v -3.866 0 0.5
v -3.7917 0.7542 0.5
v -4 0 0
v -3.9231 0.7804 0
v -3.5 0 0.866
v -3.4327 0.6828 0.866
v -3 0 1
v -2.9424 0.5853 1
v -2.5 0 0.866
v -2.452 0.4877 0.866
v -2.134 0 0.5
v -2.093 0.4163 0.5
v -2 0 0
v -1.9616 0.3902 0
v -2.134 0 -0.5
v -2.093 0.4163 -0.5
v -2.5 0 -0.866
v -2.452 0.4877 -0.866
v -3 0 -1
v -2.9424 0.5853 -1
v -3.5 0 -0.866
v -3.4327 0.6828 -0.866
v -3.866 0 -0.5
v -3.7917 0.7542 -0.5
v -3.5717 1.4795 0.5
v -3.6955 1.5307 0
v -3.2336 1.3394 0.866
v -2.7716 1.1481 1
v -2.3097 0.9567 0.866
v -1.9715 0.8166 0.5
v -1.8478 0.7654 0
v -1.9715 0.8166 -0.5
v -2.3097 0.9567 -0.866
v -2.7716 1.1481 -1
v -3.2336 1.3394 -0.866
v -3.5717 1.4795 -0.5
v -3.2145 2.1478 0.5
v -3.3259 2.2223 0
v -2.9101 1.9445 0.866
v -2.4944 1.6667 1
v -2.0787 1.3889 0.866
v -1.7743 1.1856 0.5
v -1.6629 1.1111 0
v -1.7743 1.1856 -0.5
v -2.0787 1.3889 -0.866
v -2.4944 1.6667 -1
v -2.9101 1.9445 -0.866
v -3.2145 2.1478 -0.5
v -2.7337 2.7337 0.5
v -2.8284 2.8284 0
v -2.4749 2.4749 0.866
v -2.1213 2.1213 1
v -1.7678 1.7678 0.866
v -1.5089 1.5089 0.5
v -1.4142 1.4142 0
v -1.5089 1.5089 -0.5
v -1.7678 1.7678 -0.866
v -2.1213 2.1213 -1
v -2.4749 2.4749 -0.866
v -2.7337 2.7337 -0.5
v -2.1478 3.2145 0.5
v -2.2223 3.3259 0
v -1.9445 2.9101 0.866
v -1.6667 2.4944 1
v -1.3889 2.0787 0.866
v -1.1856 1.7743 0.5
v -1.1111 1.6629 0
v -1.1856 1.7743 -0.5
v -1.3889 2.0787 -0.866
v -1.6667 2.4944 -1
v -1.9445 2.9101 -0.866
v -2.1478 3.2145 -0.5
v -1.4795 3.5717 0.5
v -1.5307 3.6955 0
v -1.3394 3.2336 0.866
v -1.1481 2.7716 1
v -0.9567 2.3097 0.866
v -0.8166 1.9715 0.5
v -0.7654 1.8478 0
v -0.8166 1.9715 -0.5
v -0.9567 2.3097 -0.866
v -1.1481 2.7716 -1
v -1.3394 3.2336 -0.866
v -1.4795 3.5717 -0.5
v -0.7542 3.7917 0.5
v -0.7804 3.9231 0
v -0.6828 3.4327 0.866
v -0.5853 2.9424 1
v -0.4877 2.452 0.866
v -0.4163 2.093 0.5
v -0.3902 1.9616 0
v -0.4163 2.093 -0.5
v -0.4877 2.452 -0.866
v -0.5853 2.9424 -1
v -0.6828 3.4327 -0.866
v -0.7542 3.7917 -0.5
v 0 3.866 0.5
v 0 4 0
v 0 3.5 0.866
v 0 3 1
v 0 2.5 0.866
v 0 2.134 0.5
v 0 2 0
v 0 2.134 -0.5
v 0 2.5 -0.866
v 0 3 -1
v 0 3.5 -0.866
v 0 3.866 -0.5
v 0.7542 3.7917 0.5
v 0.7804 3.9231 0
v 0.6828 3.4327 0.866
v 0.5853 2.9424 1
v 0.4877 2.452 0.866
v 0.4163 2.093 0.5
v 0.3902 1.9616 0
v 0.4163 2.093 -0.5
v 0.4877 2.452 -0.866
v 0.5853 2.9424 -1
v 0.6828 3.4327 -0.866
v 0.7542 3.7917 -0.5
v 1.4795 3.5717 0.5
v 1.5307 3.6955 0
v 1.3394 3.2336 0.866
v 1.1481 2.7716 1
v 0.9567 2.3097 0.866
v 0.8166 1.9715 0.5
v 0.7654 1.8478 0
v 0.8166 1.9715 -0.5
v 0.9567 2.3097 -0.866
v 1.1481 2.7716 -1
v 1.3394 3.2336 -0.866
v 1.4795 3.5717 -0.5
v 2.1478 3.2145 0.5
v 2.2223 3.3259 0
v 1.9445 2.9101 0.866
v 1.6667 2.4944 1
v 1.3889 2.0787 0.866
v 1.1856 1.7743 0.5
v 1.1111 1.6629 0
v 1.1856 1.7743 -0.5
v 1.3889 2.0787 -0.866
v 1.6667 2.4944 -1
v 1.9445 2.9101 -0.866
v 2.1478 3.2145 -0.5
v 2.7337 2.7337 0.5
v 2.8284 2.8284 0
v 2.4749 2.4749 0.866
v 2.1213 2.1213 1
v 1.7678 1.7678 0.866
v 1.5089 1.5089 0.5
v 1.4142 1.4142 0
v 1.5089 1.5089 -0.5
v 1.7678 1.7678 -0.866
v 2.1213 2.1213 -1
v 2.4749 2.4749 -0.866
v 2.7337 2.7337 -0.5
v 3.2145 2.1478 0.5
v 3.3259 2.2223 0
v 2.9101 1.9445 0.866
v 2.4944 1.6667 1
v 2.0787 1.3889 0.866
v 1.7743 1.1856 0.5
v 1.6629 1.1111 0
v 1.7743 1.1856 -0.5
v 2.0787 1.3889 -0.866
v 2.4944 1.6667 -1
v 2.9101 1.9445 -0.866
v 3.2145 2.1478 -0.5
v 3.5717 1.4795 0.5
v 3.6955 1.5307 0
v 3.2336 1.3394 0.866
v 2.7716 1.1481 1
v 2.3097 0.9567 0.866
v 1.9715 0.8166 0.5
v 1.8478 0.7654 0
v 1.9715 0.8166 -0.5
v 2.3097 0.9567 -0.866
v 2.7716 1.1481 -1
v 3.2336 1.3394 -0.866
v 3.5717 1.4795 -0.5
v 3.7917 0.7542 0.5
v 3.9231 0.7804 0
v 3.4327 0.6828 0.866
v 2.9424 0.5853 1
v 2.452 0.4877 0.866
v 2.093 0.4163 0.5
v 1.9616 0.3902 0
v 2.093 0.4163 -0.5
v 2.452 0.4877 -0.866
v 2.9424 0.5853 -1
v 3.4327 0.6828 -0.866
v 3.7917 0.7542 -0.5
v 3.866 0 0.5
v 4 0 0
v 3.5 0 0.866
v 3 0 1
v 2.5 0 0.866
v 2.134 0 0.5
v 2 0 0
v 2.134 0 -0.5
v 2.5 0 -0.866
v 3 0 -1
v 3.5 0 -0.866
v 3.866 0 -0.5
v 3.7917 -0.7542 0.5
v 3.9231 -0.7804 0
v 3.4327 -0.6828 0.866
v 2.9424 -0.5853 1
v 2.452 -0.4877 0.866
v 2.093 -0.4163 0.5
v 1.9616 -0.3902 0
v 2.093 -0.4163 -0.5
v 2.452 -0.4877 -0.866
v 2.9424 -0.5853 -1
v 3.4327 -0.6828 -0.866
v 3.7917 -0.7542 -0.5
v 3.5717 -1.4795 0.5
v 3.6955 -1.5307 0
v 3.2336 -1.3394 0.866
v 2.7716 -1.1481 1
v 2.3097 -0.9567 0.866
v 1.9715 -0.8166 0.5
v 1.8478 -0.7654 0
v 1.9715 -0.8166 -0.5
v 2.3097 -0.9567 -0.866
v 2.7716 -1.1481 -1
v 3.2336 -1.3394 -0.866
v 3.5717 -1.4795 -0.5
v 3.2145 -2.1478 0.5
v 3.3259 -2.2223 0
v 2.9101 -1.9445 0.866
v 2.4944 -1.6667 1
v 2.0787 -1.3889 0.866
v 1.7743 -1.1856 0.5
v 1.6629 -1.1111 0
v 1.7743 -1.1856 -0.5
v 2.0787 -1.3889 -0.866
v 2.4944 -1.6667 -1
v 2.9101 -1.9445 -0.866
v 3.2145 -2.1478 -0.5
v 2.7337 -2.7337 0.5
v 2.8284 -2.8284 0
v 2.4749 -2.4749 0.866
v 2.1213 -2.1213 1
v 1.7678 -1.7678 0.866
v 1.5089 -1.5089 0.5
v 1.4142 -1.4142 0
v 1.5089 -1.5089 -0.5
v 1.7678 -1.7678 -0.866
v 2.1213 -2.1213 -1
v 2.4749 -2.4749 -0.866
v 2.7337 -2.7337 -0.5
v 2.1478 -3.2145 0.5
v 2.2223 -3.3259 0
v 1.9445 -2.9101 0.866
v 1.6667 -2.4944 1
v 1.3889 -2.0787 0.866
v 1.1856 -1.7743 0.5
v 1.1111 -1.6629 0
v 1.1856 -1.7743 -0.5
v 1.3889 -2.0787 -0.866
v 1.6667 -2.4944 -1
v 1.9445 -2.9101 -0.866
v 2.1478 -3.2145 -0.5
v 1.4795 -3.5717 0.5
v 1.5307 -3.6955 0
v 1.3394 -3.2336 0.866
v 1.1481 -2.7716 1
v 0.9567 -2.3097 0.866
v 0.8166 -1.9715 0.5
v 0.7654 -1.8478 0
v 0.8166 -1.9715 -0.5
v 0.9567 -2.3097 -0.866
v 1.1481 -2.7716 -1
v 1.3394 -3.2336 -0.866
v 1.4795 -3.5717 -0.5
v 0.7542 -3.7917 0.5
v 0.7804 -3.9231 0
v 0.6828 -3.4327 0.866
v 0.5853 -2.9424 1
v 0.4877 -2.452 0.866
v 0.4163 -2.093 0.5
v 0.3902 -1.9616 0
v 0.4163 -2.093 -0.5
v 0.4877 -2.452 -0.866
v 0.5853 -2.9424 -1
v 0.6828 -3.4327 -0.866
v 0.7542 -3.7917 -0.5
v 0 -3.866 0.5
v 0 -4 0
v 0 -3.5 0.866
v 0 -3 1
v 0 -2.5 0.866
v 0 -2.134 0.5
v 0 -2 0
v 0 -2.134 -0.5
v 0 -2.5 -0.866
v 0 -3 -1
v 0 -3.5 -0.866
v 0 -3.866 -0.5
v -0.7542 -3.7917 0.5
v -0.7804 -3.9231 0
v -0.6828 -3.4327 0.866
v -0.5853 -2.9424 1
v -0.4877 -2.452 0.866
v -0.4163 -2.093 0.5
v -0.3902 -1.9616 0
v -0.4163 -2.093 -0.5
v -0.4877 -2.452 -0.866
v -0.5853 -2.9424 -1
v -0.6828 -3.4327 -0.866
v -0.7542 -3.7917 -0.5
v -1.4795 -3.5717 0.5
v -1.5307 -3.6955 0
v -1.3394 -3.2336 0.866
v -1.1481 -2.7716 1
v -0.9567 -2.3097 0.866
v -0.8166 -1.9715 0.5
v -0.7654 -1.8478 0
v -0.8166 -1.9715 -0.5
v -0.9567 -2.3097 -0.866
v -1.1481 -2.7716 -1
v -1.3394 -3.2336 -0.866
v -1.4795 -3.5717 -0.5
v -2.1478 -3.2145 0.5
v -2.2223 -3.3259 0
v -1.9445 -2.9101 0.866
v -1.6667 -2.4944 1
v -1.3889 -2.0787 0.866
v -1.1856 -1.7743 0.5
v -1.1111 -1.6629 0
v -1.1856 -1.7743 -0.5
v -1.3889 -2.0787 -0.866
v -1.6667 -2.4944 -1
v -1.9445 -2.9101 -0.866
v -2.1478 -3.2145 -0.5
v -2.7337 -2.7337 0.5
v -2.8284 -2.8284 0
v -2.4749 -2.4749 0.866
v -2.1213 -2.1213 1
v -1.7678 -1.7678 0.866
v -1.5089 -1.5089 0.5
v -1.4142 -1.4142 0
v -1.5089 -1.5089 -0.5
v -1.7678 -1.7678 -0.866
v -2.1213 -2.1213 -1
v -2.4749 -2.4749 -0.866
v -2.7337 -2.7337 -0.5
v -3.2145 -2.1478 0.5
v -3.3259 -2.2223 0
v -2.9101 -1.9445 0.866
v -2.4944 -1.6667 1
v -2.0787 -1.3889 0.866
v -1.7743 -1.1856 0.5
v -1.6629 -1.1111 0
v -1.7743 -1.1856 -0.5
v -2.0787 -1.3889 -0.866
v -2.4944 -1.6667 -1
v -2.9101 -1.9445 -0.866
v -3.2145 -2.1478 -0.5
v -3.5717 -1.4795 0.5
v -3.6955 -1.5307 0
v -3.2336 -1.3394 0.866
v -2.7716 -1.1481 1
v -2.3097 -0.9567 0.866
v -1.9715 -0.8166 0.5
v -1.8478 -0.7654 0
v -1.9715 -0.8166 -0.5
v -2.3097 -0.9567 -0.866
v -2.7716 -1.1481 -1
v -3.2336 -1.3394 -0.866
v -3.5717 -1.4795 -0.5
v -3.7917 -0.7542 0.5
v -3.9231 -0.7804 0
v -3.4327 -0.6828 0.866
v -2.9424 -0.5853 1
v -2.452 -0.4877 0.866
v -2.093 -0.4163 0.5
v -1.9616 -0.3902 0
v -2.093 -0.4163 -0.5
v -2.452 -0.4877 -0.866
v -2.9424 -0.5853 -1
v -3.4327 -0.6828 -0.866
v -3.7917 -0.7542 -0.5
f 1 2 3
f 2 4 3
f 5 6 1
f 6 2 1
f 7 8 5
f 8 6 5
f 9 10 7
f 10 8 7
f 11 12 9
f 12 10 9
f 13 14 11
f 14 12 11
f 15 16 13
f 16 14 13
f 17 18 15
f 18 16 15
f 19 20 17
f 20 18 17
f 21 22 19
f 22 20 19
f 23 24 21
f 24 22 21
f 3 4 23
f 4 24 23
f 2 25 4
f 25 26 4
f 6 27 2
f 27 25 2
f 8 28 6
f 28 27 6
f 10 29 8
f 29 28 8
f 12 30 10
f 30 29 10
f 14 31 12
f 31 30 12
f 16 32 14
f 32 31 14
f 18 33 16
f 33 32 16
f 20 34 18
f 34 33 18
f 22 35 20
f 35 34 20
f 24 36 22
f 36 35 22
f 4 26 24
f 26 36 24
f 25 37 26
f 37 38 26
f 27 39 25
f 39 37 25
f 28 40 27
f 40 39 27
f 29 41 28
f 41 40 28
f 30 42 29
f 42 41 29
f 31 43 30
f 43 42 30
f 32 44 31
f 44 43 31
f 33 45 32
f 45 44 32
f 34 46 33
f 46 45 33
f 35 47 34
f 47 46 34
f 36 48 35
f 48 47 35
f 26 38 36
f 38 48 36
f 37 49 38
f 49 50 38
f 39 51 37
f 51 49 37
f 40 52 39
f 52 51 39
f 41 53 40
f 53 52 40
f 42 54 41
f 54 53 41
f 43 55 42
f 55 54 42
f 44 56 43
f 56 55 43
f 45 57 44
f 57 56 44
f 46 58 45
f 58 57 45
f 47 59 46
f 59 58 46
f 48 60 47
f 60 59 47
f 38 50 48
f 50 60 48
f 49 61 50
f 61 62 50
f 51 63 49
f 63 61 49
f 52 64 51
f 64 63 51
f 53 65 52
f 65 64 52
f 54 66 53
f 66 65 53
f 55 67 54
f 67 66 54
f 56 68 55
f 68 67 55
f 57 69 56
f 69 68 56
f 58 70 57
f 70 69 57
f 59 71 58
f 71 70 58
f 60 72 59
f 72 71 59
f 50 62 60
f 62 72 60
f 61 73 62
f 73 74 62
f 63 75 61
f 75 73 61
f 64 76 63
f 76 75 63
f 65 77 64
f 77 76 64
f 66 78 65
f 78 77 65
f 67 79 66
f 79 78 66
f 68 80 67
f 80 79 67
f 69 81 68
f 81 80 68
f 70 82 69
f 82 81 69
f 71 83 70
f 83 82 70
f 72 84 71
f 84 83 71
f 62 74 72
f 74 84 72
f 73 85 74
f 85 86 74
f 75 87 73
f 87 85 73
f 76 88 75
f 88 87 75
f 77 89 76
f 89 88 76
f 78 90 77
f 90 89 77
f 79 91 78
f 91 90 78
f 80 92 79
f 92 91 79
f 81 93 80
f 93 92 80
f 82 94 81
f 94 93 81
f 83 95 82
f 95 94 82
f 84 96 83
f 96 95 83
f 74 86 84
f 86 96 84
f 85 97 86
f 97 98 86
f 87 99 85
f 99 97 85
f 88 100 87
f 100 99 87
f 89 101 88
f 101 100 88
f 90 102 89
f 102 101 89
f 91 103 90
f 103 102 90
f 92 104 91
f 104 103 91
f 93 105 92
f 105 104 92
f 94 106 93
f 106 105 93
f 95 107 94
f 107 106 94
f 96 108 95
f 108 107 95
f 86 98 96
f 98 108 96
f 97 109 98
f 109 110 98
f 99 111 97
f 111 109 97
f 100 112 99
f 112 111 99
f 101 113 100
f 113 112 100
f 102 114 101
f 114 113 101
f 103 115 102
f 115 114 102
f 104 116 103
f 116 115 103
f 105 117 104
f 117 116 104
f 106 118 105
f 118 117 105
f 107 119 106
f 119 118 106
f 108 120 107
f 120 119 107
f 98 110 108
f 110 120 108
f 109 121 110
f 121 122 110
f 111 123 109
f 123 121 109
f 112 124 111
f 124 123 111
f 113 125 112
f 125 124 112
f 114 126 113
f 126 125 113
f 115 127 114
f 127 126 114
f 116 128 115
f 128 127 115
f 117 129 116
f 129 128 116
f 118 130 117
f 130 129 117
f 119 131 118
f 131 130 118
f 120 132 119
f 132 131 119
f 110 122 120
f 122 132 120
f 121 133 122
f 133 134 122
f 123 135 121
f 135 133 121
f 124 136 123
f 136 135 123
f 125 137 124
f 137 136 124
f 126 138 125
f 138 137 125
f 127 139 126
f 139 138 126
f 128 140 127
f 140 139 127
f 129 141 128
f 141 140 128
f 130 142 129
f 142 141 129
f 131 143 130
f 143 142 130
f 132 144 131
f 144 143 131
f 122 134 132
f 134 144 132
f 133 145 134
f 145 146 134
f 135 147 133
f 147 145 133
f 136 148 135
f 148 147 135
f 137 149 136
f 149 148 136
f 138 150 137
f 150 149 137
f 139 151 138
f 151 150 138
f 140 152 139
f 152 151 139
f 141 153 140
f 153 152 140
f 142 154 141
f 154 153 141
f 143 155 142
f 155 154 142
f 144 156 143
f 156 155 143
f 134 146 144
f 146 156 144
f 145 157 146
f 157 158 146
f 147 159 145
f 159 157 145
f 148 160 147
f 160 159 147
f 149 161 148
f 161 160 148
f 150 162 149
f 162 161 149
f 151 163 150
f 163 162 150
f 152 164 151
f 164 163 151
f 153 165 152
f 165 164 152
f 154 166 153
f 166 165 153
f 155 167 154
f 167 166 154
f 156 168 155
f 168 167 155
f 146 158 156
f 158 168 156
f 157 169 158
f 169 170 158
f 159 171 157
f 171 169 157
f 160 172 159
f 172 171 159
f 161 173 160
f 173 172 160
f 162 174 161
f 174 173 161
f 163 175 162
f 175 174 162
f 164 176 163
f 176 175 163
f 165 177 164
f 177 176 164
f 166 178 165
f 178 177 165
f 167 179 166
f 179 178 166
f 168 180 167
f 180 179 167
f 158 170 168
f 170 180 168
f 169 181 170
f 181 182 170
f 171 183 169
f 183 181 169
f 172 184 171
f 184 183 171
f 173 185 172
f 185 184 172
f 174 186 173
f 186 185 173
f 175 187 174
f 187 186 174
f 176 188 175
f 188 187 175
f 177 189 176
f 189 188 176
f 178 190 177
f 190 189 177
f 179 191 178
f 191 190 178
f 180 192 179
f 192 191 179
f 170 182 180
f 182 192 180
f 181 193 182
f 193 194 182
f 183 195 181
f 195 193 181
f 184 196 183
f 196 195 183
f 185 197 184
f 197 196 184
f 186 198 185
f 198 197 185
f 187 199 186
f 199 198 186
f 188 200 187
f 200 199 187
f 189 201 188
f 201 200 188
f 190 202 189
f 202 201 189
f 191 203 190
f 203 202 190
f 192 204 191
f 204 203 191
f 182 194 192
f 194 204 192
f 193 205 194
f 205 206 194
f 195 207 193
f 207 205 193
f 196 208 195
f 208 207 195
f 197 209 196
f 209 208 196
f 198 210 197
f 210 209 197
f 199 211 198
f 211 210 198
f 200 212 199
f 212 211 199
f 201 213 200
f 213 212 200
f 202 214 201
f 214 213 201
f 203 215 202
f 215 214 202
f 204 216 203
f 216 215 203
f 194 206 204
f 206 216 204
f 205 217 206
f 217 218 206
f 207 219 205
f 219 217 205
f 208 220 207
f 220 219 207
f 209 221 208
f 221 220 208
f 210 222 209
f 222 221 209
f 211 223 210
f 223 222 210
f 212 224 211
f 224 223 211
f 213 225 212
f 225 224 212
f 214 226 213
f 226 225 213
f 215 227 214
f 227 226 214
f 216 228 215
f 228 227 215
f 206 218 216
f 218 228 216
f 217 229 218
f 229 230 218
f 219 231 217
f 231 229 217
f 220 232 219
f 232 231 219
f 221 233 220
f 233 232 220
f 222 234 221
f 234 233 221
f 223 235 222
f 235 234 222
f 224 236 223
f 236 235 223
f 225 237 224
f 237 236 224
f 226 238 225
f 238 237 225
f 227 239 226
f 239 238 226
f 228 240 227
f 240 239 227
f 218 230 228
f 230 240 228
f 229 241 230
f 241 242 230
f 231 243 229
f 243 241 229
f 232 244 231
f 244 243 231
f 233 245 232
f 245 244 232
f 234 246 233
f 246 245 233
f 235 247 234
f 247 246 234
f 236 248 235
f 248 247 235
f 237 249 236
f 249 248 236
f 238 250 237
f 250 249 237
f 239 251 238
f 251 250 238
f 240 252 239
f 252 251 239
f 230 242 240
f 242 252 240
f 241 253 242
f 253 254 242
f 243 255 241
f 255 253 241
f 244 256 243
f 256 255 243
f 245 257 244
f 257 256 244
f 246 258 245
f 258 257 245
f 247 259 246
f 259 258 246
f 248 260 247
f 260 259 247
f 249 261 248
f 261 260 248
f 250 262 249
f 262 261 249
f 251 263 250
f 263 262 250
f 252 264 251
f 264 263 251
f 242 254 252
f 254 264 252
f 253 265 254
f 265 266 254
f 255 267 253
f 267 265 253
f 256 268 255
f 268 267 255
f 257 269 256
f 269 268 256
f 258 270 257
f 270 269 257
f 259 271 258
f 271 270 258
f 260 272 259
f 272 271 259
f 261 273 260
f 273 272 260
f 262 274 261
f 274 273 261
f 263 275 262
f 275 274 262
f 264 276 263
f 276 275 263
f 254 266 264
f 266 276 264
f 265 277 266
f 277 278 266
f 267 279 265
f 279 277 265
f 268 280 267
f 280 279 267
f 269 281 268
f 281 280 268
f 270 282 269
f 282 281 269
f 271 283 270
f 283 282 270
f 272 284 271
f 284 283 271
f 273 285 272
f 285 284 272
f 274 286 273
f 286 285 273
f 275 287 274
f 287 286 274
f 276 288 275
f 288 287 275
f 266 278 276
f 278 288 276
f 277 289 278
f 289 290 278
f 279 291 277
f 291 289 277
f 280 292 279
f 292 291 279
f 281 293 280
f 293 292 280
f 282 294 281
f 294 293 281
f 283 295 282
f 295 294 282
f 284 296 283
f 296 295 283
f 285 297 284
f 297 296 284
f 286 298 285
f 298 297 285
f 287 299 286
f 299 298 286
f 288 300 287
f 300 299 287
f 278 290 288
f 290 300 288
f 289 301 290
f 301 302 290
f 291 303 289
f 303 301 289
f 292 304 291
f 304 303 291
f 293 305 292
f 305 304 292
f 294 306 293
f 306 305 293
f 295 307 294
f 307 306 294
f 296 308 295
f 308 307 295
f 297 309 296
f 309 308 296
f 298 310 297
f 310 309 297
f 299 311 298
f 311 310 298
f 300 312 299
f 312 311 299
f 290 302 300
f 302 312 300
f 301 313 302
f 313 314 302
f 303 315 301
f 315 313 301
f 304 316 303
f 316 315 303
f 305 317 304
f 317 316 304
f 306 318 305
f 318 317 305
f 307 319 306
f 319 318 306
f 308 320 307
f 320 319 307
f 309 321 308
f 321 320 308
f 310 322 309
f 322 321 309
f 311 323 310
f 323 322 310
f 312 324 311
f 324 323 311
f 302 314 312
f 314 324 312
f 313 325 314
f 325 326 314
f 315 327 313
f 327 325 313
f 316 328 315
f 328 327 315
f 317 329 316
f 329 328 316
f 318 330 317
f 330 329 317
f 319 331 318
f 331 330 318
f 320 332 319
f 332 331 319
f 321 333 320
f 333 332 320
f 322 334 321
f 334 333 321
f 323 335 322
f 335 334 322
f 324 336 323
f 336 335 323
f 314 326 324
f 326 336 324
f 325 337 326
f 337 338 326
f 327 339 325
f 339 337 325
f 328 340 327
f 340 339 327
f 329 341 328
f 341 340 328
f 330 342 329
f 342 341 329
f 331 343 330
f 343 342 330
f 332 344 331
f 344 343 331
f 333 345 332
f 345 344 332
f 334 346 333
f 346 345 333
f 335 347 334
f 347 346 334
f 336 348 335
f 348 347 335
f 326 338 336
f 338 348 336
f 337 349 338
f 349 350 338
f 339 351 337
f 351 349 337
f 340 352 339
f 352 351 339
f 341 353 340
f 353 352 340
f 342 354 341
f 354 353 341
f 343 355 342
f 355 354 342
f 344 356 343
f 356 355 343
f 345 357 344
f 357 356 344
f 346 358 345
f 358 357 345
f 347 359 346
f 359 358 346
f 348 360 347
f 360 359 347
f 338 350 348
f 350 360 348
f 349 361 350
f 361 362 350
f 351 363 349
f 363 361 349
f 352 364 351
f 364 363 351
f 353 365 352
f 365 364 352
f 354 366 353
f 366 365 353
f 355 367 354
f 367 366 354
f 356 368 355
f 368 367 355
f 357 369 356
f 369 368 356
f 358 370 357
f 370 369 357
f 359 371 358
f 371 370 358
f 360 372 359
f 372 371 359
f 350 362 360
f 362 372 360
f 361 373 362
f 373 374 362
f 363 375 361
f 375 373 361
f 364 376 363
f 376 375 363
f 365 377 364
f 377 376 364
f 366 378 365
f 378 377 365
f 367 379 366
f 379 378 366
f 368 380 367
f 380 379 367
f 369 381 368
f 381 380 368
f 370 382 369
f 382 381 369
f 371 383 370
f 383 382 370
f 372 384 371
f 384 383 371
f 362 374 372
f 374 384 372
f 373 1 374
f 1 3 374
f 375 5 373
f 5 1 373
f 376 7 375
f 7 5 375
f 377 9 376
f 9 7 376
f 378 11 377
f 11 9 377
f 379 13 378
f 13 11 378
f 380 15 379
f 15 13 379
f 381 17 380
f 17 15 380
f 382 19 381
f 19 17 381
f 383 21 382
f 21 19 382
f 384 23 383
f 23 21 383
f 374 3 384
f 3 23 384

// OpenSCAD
rotate_extrude($fn = 32)
translate([3, 0, 0])
circle(r = 1, $fn = 12);
